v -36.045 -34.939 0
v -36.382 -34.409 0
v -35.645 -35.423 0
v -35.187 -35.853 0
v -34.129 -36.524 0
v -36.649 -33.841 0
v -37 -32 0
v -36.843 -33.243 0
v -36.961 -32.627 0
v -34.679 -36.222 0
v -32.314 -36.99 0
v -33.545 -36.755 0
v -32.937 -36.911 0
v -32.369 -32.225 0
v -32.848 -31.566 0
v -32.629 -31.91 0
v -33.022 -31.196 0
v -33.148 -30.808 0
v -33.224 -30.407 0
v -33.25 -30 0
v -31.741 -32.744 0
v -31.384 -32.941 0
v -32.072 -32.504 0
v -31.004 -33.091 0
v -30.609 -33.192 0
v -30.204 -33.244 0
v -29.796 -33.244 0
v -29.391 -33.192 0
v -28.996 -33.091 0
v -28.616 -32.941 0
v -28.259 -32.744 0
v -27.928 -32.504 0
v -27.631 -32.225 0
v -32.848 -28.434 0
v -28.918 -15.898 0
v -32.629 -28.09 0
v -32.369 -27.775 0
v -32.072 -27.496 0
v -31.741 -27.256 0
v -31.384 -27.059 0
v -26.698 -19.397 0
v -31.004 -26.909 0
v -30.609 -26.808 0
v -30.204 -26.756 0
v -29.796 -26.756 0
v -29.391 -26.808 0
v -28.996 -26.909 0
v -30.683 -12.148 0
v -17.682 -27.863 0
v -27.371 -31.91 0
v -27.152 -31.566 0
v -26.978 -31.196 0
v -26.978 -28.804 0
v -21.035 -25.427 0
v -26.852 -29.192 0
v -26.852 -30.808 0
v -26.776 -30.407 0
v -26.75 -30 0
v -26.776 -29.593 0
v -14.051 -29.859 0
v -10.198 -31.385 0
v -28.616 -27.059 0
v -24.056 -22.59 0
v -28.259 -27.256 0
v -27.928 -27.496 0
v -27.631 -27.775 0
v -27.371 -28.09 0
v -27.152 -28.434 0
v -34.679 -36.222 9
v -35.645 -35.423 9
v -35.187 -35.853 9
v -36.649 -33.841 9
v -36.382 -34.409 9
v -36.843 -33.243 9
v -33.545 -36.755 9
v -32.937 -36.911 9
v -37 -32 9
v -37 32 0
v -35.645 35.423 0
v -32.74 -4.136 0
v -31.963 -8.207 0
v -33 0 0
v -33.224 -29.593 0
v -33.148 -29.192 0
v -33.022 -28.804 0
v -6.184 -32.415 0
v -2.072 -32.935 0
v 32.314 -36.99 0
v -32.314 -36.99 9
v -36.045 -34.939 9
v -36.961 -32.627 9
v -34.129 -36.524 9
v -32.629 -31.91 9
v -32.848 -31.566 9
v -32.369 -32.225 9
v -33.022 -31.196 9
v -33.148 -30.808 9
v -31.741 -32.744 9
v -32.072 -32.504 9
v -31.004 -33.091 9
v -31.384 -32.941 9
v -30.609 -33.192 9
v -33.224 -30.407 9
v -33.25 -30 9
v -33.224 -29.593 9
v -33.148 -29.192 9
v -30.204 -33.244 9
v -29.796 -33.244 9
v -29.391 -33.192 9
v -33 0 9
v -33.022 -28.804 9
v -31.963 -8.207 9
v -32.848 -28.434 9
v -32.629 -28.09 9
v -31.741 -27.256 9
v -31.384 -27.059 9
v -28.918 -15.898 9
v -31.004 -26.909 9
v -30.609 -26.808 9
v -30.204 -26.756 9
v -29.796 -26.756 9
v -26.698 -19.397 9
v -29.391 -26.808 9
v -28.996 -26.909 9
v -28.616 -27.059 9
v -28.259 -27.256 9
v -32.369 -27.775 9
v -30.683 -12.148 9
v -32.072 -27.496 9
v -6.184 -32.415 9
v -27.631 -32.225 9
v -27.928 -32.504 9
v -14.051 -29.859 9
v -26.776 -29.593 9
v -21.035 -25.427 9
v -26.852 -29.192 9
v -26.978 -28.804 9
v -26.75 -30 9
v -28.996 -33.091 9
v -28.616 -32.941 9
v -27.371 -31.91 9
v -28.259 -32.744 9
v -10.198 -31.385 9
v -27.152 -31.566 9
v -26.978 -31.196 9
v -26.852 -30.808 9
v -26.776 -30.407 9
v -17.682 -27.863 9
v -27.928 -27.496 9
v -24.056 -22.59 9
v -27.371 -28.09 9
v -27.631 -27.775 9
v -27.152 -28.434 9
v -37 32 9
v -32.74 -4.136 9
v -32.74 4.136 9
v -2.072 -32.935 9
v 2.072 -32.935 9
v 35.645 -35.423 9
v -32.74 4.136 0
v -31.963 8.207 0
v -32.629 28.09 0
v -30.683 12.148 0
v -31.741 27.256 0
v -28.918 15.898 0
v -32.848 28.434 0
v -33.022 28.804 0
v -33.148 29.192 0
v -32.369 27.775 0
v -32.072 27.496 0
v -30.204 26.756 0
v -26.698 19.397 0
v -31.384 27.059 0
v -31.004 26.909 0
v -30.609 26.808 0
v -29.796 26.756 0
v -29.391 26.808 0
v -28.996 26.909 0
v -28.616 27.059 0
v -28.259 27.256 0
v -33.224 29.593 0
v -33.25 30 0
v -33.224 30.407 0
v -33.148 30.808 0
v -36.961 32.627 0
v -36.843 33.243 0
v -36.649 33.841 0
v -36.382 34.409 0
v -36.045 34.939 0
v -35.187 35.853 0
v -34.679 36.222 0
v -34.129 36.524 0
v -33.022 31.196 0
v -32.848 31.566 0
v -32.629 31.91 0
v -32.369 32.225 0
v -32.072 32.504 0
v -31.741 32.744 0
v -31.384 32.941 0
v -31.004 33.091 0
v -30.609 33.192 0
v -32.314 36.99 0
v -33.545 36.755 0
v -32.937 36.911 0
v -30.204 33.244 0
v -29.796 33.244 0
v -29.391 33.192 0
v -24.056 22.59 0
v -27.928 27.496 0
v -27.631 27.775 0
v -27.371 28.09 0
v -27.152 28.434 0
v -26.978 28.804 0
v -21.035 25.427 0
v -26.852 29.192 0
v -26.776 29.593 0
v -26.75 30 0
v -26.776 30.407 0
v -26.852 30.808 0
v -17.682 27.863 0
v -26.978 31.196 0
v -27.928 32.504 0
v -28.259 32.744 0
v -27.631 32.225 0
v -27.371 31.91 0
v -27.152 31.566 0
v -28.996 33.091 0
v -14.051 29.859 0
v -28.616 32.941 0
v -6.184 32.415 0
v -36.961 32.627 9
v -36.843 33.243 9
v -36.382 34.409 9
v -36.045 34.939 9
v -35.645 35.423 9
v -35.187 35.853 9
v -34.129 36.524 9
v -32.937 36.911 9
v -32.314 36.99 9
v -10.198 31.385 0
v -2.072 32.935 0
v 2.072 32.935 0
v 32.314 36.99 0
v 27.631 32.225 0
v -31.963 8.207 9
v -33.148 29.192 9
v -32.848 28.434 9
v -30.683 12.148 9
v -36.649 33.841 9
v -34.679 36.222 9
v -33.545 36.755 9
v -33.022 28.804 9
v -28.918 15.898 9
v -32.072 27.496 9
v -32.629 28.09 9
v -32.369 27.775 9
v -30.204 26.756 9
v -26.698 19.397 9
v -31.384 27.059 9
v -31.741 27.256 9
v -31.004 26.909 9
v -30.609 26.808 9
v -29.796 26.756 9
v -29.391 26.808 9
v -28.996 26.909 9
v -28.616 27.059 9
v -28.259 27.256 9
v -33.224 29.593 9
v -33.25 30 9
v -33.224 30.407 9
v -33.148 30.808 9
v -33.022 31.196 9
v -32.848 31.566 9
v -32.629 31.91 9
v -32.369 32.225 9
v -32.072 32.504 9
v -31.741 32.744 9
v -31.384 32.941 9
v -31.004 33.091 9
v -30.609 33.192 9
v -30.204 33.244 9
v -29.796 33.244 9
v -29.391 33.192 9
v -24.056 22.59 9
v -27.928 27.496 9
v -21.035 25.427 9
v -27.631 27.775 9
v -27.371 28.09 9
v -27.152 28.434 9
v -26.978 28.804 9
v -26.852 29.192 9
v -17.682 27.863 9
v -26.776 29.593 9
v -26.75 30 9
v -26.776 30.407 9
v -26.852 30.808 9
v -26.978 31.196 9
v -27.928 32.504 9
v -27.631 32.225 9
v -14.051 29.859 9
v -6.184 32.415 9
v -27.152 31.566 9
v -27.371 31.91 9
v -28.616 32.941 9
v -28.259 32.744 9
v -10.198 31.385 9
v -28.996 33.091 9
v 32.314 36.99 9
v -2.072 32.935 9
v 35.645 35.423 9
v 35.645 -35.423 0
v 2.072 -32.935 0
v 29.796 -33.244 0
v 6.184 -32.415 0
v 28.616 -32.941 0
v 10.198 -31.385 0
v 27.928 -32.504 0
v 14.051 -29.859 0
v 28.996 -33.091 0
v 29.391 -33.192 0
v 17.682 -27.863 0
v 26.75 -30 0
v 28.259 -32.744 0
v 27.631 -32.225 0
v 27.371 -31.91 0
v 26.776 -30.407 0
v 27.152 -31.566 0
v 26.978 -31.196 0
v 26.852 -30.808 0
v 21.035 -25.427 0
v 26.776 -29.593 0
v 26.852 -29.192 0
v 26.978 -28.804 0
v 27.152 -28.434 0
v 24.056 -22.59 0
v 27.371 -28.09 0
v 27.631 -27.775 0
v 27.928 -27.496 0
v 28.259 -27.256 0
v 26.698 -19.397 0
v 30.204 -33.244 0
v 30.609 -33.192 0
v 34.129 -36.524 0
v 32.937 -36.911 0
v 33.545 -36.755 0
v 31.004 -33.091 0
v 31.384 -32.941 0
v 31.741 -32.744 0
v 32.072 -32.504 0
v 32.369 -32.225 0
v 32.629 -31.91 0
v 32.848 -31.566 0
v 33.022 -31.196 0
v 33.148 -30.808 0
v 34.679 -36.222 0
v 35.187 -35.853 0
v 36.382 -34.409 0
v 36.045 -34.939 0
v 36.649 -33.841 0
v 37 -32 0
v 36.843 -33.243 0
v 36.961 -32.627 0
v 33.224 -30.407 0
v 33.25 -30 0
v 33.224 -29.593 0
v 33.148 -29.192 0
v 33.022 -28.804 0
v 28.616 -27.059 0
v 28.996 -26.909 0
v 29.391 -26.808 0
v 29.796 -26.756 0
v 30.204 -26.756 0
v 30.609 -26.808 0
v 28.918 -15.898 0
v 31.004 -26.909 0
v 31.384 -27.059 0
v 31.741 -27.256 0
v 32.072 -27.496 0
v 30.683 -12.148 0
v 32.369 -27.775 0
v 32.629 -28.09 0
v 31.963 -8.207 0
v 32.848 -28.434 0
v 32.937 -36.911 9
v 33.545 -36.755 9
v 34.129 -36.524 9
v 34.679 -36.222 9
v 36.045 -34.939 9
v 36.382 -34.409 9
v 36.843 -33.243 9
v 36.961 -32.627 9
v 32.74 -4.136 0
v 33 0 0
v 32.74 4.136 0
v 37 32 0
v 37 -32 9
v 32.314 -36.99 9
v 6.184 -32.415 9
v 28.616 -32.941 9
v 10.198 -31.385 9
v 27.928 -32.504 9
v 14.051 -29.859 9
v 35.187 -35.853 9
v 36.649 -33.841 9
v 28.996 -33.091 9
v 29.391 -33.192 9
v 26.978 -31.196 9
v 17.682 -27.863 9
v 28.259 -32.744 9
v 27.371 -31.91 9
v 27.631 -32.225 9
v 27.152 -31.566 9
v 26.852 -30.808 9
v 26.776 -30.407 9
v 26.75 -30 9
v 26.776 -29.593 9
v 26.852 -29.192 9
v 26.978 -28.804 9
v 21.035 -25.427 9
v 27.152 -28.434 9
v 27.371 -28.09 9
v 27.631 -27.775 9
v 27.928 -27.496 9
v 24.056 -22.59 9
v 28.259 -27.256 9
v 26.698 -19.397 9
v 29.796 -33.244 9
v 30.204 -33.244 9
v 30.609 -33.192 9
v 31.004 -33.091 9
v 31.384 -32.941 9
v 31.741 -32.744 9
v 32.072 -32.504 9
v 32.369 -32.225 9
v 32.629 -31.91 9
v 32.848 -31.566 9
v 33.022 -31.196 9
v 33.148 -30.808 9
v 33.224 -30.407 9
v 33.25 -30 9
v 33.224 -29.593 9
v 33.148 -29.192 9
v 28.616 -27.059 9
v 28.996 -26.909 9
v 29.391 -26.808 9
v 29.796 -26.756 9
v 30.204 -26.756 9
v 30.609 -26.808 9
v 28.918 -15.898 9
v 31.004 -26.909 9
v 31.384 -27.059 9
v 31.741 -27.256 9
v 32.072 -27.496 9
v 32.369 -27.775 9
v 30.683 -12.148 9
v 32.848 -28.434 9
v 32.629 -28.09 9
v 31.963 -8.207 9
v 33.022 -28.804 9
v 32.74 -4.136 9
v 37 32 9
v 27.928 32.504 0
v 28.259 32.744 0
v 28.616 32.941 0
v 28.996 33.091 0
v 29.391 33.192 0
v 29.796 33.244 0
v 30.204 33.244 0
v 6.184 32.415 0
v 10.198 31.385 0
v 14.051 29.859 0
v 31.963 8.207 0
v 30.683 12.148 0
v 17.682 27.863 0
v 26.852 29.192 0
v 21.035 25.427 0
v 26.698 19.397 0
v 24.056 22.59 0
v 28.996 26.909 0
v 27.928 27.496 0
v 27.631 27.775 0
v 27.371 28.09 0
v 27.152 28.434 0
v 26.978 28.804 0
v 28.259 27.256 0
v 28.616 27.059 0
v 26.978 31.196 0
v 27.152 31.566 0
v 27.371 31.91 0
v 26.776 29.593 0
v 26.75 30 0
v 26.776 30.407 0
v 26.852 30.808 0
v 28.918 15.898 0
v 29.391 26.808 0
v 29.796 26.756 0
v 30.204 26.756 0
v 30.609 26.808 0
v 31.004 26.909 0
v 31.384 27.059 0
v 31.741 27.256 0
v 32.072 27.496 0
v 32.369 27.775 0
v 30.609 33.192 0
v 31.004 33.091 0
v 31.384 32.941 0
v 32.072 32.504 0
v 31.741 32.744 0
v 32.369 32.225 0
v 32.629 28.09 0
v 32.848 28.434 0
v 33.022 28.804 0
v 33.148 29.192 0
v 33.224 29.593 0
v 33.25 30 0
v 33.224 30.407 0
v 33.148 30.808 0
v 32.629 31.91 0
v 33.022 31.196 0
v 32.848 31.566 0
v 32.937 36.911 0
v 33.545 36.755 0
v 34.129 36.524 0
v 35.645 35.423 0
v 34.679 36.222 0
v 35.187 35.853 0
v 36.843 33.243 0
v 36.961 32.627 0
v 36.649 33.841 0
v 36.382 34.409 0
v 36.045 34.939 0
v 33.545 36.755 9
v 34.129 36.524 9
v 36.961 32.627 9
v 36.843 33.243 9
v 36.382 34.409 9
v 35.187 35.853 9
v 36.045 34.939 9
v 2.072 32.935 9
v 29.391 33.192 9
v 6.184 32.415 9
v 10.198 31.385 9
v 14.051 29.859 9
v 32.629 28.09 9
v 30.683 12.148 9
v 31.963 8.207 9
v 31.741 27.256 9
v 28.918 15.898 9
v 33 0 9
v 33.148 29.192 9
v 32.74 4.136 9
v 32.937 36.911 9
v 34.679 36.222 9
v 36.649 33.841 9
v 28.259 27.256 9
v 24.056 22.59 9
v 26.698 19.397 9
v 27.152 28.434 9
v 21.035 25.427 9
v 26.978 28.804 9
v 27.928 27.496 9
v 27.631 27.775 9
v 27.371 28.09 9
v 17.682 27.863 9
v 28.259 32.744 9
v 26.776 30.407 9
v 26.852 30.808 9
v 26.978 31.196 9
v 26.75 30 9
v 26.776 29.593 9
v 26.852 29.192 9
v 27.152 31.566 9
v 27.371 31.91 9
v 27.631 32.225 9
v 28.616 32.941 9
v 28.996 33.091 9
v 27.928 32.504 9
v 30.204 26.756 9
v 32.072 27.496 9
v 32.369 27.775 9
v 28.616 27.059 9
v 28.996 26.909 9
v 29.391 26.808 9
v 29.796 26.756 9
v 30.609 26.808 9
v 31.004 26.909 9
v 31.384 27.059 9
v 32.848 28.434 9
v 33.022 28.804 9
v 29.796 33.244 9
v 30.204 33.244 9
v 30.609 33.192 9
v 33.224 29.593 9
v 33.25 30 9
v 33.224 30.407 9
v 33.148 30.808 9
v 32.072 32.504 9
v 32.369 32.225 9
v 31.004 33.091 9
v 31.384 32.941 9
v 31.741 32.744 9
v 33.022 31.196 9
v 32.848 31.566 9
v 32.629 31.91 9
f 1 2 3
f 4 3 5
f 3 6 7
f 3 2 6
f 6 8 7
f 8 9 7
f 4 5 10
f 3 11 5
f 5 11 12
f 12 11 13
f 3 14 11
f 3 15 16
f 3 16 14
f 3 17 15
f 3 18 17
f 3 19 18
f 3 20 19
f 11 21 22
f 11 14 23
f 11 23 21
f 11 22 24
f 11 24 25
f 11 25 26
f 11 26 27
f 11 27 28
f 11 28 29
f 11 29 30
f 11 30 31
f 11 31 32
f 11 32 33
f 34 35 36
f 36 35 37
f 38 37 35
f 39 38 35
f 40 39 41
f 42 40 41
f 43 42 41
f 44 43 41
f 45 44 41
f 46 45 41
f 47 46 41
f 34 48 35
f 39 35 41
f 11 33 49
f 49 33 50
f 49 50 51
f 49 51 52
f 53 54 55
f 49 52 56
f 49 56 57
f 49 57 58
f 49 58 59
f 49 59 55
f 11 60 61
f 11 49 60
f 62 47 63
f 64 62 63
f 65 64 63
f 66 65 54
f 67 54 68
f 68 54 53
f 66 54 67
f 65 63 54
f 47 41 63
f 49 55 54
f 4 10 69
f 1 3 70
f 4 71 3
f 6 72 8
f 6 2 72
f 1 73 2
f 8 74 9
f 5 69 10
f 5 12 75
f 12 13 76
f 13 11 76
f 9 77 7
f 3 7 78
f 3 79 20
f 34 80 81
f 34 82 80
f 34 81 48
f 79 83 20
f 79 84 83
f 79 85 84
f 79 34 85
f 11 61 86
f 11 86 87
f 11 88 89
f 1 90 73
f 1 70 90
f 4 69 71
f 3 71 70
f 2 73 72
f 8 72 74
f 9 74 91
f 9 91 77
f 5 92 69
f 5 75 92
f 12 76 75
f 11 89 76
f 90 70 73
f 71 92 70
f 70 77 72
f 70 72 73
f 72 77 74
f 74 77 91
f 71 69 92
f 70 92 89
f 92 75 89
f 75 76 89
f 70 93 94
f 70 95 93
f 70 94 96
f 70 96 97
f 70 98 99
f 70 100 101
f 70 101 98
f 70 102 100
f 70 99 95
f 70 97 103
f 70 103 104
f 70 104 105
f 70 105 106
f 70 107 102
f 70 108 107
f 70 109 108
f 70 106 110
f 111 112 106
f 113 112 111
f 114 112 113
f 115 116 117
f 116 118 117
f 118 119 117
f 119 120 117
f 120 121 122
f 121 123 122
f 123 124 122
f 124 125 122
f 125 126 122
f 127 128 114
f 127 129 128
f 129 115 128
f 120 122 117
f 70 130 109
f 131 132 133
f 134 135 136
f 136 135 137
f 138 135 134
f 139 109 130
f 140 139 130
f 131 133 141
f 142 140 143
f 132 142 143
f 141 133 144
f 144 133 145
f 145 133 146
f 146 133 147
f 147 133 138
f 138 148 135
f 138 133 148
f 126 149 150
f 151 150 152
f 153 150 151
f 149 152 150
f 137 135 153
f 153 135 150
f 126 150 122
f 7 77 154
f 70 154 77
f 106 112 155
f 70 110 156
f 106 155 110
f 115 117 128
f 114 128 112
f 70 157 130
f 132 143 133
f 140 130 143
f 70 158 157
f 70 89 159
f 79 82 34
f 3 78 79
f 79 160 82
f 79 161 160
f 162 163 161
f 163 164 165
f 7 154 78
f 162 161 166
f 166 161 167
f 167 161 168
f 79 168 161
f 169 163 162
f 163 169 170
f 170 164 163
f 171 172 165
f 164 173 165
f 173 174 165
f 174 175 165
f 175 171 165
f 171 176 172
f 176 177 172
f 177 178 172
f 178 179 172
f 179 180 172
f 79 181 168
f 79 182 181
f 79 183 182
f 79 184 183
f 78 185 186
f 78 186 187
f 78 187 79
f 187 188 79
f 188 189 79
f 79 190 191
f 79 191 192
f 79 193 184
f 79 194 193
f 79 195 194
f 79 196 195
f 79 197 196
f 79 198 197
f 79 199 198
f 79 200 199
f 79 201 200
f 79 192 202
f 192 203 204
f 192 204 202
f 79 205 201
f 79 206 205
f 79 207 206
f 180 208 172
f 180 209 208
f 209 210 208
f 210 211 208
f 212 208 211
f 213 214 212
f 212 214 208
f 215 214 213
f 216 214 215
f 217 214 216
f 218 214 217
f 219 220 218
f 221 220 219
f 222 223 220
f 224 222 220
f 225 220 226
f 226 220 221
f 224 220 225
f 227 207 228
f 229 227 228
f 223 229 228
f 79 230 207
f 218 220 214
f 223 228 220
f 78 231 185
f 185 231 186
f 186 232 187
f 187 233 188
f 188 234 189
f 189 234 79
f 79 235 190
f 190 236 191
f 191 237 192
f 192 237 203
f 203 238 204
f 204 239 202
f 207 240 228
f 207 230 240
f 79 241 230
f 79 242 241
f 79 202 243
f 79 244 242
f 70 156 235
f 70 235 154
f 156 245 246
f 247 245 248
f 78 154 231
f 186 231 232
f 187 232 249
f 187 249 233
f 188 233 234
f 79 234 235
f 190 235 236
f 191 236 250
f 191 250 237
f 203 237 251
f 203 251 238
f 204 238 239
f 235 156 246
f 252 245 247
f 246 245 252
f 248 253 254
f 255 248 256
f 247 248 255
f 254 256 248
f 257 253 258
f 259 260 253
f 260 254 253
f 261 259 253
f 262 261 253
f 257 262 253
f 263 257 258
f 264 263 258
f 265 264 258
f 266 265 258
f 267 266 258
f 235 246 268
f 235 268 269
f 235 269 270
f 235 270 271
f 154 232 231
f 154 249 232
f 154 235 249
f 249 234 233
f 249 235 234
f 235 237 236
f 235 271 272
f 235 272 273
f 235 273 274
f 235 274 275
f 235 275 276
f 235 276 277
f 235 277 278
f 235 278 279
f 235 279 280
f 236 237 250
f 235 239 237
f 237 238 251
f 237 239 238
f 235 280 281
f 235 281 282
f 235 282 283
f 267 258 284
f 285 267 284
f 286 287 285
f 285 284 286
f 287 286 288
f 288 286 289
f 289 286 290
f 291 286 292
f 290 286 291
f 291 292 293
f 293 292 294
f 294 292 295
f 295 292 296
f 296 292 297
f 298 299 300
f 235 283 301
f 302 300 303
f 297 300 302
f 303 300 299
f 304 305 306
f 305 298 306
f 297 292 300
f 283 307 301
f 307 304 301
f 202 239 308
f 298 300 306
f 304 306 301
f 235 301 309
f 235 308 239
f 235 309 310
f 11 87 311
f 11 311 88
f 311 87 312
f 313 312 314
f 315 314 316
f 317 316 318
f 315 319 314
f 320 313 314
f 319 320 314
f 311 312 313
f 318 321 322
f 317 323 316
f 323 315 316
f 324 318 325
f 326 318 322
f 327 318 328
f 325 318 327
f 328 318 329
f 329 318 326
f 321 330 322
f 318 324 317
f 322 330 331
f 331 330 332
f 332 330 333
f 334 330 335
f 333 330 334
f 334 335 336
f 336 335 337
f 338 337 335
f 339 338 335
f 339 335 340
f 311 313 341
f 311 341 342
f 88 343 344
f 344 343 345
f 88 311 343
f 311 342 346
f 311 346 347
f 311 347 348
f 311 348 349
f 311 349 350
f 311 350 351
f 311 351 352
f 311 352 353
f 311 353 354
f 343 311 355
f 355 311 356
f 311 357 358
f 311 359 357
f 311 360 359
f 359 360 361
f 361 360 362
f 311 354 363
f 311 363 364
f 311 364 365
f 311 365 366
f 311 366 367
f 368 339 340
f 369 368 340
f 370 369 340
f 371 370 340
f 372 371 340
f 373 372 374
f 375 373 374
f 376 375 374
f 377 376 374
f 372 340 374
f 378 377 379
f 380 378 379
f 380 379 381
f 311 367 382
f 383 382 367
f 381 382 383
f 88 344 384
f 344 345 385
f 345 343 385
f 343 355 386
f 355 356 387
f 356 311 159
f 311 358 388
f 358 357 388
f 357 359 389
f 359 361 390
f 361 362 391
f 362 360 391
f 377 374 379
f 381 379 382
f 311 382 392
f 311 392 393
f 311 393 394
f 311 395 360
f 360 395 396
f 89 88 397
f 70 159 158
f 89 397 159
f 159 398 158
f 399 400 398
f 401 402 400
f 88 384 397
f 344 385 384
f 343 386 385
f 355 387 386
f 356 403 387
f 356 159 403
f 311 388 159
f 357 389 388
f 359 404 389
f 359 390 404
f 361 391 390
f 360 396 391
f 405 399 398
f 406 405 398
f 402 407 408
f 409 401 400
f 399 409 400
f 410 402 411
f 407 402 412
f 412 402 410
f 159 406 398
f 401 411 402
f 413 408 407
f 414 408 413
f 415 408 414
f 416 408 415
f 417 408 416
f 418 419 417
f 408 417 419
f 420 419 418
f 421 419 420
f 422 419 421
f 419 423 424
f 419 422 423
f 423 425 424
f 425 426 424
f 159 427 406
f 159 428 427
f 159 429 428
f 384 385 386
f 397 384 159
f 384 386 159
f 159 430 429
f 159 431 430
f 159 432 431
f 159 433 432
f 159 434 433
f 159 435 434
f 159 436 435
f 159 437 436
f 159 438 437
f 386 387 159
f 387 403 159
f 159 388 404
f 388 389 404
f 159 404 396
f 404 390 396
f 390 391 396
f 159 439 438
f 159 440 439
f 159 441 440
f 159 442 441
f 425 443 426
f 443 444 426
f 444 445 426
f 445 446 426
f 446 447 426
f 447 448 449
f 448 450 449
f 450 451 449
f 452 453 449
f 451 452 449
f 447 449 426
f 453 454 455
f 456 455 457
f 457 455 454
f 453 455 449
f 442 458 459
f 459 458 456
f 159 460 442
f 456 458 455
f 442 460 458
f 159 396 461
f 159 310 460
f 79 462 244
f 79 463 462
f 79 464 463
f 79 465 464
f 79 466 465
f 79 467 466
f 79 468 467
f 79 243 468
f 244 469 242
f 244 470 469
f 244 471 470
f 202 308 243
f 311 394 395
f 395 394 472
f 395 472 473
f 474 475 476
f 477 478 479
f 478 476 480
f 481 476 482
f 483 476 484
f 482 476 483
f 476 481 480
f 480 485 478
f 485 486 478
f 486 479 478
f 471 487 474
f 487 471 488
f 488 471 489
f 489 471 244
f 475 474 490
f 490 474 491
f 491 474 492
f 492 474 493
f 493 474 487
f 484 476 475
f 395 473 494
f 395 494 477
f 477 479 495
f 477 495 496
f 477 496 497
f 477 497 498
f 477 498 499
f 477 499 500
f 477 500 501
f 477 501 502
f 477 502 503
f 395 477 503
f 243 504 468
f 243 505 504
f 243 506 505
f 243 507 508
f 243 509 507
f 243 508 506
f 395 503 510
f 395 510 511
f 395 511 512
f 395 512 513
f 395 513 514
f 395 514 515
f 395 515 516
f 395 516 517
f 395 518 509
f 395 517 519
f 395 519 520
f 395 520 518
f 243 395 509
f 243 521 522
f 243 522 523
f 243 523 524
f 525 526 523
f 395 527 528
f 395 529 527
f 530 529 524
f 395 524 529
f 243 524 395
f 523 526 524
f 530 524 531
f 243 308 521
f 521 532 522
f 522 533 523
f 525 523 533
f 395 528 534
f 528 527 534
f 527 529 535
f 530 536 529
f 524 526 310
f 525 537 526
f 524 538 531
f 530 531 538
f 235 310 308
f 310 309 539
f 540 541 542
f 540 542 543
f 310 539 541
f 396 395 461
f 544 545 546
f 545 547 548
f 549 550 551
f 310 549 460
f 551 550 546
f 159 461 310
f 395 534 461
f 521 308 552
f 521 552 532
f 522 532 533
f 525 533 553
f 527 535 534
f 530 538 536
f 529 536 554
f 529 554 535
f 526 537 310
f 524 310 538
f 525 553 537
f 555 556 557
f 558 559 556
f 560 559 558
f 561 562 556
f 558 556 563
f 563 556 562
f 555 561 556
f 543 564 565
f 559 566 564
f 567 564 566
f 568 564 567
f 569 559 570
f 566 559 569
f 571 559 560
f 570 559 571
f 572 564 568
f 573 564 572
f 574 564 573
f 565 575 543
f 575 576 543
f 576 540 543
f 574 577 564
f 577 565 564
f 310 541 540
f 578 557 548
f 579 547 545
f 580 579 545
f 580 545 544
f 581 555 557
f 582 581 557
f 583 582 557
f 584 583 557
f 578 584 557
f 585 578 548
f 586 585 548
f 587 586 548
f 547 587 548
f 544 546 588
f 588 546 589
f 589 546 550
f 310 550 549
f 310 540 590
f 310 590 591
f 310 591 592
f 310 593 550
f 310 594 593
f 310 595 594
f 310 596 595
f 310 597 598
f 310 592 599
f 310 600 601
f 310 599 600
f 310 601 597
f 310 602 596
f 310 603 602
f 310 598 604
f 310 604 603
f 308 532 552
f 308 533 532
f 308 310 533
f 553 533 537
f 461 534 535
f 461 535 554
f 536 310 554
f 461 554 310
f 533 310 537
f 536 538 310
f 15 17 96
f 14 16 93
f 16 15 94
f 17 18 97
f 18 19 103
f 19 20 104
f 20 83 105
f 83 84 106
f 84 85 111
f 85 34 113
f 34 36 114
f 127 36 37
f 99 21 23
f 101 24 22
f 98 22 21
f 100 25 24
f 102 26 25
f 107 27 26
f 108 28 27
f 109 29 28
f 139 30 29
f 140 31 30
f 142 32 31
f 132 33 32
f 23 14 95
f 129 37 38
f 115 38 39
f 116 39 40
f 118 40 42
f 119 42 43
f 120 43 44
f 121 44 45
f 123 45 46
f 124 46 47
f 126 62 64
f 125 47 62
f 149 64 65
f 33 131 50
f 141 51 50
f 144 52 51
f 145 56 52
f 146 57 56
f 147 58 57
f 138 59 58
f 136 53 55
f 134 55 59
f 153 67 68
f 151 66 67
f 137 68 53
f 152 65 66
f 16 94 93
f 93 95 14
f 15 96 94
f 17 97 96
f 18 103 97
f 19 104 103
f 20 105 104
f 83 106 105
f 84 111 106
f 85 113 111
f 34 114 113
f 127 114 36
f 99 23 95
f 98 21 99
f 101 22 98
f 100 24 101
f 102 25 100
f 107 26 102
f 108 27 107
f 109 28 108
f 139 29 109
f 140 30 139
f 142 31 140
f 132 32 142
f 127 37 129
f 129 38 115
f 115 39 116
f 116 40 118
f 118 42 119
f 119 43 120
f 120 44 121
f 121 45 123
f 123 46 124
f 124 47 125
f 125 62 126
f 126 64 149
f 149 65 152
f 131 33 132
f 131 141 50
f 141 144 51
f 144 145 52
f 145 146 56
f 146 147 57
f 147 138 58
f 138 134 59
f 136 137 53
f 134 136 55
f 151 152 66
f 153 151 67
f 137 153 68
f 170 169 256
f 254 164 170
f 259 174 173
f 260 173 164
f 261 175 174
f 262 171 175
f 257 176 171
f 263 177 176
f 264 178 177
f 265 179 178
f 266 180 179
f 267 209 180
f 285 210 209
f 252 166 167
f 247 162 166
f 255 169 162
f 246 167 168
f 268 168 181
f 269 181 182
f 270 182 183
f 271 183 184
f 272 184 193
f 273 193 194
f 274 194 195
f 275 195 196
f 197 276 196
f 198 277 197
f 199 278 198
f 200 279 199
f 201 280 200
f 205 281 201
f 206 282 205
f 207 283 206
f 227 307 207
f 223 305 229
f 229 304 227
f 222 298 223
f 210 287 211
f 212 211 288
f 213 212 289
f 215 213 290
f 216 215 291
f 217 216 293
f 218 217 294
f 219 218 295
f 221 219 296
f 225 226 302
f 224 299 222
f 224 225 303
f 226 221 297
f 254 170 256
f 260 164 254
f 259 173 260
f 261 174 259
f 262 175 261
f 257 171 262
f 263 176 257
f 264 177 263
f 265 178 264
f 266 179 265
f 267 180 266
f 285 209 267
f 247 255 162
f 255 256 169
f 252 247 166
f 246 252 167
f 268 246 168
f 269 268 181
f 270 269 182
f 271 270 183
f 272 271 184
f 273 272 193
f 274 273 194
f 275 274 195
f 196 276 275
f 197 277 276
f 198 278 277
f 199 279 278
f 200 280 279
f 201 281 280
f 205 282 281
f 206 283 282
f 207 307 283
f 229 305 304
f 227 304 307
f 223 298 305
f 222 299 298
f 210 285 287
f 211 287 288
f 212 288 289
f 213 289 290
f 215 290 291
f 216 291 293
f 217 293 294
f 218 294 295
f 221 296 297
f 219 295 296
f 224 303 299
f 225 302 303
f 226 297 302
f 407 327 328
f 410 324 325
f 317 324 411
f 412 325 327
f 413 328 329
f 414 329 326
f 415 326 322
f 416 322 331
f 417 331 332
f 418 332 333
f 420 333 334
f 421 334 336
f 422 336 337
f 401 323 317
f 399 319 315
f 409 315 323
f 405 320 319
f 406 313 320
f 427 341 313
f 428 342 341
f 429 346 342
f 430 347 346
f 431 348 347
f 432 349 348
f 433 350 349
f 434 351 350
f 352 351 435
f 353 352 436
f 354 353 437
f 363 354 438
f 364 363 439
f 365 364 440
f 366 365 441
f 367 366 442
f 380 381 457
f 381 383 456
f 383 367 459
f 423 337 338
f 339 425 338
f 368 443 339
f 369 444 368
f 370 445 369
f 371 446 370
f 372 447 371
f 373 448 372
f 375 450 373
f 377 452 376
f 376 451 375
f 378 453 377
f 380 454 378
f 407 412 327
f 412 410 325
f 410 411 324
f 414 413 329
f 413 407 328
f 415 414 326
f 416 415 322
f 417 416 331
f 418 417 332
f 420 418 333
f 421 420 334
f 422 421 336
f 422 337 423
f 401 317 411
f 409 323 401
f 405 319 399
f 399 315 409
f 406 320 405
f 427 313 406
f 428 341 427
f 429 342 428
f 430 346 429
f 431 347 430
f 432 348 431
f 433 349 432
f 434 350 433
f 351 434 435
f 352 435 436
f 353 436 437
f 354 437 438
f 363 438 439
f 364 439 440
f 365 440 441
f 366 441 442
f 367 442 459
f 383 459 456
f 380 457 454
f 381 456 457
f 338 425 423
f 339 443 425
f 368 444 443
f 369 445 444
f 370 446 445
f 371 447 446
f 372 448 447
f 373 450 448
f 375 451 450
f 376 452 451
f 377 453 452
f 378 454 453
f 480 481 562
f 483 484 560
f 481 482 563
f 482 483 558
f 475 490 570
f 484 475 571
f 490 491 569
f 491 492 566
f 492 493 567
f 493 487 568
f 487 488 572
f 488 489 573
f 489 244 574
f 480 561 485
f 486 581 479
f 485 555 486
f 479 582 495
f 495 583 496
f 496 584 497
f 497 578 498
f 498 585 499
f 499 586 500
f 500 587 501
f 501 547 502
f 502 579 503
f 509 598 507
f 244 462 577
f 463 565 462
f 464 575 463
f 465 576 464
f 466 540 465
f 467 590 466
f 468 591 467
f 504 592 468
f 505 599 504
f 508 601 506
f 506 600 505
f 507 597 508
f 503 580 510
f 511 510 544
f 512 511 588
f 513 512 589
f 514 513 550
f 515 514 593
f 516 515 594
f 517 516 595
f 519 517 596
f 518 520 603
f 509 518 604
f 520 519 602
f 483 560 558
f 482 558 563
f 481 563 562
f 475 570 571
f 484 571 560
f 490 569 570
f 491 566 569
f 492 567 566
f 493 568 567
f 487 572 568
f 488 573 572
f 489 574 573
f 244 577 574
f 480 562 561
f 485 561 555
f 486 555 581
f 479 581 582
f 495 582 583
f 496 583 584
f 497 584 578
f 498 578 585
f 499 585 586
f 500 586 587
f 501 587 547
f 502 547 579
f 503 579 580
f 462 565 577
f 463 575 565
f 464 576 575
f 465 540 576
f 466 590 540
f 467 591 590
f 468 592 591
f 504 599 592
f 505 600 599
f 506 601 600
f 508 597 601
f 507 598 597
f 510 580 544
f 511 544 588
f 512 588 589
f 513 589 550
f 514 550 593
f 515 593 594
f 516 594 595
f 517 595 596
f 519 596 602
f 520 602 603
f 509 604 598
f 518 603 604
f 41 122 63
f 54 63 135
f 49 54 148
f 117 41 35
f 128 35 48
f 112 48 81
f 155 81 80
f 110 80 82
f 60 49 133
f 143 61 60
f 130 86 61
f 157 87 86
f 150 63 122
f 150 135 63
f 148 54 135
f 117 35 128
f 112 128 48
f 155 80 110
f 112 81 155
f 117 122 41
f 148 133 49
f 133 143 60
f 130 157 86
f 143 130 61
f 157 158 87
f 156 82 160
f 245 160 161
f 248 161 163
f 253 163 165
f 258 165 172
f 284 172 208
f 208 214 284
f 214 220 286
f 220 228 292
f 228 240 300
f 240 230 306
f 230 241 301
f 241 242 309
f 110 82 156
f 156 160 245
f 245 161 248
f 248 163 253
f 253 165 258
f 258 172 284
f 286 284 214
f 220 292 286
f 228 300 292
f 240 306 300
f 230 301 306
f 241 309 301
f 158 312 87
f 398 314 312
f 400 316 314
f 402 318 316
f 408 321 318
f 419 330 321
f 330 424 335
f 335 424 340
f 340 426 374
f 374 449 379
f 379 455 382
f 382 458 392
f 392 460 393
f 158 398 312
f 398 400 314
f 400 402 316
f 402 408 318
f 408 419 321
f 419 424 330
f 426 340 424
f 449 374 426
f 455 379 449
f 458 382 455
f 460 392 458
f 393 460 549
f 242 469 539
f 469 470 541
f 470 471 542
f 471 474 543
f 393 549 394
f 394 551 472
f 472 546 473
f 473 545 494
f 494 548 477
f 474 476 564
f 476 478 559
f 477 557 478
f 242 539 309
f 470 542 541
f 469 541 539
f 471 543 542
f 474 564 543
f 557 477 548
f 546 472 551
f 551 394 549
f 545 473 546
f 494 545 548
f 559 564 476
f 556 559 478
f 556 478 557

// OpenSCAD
$fn = 50;

difference() {
	union() {
		hull() {
			translate(v = [-32.0, 32.0, 0]) {
				cylinder(h = 9, r = 5);
			}
			translate(v = [32.0, 32.0, 0]) {
				cylinder(h = 9, r = 5);
			}
			translate(v = [-32.0, -32.0, 0]) {
				cylinder(h = 9, r = 5);
			}
			translate(v = [32.0, -32.0, 0]) {
				cylinder(h = 9, r = 5);
			}
		}
	}
	union() {
		translate(v = [-30.0, -30.0, -100.0]) {
			cylinder(h = 200, r = 3.25);
		}
		translate(v = [-30.0, 30.0, -100.0]) {
			cylinder(h = 200, r = 3.25);
		}
		translate(v = [30.0, -30.0, -100.0]) {
			cylinder(h = 200, r = 3.25);
		}
		translate(v = [30.0, 30.0, -100.0]) {
			cylinder(h = 200, r = 3.25);
		}
		translate(v = [-30.0, -30.0, -100.0]) {
			cylinder(h = 200, r = 1.8);
		}
		translate(v = [-30.0, 30.0, -100.0]) {
			cylinder(h = 200, r = 1.8);
		}
		translate(v = [30.0, -30.0, -100.0]) {
			cylinder(h = 200, r = 1.8);
		}
		translate(v = [30.0, 30.0, -100.0]) {
			cylinder(h = 200, r = 1.8);
		}
		cylinder(h = 9, r = 33.0);
	}
}
